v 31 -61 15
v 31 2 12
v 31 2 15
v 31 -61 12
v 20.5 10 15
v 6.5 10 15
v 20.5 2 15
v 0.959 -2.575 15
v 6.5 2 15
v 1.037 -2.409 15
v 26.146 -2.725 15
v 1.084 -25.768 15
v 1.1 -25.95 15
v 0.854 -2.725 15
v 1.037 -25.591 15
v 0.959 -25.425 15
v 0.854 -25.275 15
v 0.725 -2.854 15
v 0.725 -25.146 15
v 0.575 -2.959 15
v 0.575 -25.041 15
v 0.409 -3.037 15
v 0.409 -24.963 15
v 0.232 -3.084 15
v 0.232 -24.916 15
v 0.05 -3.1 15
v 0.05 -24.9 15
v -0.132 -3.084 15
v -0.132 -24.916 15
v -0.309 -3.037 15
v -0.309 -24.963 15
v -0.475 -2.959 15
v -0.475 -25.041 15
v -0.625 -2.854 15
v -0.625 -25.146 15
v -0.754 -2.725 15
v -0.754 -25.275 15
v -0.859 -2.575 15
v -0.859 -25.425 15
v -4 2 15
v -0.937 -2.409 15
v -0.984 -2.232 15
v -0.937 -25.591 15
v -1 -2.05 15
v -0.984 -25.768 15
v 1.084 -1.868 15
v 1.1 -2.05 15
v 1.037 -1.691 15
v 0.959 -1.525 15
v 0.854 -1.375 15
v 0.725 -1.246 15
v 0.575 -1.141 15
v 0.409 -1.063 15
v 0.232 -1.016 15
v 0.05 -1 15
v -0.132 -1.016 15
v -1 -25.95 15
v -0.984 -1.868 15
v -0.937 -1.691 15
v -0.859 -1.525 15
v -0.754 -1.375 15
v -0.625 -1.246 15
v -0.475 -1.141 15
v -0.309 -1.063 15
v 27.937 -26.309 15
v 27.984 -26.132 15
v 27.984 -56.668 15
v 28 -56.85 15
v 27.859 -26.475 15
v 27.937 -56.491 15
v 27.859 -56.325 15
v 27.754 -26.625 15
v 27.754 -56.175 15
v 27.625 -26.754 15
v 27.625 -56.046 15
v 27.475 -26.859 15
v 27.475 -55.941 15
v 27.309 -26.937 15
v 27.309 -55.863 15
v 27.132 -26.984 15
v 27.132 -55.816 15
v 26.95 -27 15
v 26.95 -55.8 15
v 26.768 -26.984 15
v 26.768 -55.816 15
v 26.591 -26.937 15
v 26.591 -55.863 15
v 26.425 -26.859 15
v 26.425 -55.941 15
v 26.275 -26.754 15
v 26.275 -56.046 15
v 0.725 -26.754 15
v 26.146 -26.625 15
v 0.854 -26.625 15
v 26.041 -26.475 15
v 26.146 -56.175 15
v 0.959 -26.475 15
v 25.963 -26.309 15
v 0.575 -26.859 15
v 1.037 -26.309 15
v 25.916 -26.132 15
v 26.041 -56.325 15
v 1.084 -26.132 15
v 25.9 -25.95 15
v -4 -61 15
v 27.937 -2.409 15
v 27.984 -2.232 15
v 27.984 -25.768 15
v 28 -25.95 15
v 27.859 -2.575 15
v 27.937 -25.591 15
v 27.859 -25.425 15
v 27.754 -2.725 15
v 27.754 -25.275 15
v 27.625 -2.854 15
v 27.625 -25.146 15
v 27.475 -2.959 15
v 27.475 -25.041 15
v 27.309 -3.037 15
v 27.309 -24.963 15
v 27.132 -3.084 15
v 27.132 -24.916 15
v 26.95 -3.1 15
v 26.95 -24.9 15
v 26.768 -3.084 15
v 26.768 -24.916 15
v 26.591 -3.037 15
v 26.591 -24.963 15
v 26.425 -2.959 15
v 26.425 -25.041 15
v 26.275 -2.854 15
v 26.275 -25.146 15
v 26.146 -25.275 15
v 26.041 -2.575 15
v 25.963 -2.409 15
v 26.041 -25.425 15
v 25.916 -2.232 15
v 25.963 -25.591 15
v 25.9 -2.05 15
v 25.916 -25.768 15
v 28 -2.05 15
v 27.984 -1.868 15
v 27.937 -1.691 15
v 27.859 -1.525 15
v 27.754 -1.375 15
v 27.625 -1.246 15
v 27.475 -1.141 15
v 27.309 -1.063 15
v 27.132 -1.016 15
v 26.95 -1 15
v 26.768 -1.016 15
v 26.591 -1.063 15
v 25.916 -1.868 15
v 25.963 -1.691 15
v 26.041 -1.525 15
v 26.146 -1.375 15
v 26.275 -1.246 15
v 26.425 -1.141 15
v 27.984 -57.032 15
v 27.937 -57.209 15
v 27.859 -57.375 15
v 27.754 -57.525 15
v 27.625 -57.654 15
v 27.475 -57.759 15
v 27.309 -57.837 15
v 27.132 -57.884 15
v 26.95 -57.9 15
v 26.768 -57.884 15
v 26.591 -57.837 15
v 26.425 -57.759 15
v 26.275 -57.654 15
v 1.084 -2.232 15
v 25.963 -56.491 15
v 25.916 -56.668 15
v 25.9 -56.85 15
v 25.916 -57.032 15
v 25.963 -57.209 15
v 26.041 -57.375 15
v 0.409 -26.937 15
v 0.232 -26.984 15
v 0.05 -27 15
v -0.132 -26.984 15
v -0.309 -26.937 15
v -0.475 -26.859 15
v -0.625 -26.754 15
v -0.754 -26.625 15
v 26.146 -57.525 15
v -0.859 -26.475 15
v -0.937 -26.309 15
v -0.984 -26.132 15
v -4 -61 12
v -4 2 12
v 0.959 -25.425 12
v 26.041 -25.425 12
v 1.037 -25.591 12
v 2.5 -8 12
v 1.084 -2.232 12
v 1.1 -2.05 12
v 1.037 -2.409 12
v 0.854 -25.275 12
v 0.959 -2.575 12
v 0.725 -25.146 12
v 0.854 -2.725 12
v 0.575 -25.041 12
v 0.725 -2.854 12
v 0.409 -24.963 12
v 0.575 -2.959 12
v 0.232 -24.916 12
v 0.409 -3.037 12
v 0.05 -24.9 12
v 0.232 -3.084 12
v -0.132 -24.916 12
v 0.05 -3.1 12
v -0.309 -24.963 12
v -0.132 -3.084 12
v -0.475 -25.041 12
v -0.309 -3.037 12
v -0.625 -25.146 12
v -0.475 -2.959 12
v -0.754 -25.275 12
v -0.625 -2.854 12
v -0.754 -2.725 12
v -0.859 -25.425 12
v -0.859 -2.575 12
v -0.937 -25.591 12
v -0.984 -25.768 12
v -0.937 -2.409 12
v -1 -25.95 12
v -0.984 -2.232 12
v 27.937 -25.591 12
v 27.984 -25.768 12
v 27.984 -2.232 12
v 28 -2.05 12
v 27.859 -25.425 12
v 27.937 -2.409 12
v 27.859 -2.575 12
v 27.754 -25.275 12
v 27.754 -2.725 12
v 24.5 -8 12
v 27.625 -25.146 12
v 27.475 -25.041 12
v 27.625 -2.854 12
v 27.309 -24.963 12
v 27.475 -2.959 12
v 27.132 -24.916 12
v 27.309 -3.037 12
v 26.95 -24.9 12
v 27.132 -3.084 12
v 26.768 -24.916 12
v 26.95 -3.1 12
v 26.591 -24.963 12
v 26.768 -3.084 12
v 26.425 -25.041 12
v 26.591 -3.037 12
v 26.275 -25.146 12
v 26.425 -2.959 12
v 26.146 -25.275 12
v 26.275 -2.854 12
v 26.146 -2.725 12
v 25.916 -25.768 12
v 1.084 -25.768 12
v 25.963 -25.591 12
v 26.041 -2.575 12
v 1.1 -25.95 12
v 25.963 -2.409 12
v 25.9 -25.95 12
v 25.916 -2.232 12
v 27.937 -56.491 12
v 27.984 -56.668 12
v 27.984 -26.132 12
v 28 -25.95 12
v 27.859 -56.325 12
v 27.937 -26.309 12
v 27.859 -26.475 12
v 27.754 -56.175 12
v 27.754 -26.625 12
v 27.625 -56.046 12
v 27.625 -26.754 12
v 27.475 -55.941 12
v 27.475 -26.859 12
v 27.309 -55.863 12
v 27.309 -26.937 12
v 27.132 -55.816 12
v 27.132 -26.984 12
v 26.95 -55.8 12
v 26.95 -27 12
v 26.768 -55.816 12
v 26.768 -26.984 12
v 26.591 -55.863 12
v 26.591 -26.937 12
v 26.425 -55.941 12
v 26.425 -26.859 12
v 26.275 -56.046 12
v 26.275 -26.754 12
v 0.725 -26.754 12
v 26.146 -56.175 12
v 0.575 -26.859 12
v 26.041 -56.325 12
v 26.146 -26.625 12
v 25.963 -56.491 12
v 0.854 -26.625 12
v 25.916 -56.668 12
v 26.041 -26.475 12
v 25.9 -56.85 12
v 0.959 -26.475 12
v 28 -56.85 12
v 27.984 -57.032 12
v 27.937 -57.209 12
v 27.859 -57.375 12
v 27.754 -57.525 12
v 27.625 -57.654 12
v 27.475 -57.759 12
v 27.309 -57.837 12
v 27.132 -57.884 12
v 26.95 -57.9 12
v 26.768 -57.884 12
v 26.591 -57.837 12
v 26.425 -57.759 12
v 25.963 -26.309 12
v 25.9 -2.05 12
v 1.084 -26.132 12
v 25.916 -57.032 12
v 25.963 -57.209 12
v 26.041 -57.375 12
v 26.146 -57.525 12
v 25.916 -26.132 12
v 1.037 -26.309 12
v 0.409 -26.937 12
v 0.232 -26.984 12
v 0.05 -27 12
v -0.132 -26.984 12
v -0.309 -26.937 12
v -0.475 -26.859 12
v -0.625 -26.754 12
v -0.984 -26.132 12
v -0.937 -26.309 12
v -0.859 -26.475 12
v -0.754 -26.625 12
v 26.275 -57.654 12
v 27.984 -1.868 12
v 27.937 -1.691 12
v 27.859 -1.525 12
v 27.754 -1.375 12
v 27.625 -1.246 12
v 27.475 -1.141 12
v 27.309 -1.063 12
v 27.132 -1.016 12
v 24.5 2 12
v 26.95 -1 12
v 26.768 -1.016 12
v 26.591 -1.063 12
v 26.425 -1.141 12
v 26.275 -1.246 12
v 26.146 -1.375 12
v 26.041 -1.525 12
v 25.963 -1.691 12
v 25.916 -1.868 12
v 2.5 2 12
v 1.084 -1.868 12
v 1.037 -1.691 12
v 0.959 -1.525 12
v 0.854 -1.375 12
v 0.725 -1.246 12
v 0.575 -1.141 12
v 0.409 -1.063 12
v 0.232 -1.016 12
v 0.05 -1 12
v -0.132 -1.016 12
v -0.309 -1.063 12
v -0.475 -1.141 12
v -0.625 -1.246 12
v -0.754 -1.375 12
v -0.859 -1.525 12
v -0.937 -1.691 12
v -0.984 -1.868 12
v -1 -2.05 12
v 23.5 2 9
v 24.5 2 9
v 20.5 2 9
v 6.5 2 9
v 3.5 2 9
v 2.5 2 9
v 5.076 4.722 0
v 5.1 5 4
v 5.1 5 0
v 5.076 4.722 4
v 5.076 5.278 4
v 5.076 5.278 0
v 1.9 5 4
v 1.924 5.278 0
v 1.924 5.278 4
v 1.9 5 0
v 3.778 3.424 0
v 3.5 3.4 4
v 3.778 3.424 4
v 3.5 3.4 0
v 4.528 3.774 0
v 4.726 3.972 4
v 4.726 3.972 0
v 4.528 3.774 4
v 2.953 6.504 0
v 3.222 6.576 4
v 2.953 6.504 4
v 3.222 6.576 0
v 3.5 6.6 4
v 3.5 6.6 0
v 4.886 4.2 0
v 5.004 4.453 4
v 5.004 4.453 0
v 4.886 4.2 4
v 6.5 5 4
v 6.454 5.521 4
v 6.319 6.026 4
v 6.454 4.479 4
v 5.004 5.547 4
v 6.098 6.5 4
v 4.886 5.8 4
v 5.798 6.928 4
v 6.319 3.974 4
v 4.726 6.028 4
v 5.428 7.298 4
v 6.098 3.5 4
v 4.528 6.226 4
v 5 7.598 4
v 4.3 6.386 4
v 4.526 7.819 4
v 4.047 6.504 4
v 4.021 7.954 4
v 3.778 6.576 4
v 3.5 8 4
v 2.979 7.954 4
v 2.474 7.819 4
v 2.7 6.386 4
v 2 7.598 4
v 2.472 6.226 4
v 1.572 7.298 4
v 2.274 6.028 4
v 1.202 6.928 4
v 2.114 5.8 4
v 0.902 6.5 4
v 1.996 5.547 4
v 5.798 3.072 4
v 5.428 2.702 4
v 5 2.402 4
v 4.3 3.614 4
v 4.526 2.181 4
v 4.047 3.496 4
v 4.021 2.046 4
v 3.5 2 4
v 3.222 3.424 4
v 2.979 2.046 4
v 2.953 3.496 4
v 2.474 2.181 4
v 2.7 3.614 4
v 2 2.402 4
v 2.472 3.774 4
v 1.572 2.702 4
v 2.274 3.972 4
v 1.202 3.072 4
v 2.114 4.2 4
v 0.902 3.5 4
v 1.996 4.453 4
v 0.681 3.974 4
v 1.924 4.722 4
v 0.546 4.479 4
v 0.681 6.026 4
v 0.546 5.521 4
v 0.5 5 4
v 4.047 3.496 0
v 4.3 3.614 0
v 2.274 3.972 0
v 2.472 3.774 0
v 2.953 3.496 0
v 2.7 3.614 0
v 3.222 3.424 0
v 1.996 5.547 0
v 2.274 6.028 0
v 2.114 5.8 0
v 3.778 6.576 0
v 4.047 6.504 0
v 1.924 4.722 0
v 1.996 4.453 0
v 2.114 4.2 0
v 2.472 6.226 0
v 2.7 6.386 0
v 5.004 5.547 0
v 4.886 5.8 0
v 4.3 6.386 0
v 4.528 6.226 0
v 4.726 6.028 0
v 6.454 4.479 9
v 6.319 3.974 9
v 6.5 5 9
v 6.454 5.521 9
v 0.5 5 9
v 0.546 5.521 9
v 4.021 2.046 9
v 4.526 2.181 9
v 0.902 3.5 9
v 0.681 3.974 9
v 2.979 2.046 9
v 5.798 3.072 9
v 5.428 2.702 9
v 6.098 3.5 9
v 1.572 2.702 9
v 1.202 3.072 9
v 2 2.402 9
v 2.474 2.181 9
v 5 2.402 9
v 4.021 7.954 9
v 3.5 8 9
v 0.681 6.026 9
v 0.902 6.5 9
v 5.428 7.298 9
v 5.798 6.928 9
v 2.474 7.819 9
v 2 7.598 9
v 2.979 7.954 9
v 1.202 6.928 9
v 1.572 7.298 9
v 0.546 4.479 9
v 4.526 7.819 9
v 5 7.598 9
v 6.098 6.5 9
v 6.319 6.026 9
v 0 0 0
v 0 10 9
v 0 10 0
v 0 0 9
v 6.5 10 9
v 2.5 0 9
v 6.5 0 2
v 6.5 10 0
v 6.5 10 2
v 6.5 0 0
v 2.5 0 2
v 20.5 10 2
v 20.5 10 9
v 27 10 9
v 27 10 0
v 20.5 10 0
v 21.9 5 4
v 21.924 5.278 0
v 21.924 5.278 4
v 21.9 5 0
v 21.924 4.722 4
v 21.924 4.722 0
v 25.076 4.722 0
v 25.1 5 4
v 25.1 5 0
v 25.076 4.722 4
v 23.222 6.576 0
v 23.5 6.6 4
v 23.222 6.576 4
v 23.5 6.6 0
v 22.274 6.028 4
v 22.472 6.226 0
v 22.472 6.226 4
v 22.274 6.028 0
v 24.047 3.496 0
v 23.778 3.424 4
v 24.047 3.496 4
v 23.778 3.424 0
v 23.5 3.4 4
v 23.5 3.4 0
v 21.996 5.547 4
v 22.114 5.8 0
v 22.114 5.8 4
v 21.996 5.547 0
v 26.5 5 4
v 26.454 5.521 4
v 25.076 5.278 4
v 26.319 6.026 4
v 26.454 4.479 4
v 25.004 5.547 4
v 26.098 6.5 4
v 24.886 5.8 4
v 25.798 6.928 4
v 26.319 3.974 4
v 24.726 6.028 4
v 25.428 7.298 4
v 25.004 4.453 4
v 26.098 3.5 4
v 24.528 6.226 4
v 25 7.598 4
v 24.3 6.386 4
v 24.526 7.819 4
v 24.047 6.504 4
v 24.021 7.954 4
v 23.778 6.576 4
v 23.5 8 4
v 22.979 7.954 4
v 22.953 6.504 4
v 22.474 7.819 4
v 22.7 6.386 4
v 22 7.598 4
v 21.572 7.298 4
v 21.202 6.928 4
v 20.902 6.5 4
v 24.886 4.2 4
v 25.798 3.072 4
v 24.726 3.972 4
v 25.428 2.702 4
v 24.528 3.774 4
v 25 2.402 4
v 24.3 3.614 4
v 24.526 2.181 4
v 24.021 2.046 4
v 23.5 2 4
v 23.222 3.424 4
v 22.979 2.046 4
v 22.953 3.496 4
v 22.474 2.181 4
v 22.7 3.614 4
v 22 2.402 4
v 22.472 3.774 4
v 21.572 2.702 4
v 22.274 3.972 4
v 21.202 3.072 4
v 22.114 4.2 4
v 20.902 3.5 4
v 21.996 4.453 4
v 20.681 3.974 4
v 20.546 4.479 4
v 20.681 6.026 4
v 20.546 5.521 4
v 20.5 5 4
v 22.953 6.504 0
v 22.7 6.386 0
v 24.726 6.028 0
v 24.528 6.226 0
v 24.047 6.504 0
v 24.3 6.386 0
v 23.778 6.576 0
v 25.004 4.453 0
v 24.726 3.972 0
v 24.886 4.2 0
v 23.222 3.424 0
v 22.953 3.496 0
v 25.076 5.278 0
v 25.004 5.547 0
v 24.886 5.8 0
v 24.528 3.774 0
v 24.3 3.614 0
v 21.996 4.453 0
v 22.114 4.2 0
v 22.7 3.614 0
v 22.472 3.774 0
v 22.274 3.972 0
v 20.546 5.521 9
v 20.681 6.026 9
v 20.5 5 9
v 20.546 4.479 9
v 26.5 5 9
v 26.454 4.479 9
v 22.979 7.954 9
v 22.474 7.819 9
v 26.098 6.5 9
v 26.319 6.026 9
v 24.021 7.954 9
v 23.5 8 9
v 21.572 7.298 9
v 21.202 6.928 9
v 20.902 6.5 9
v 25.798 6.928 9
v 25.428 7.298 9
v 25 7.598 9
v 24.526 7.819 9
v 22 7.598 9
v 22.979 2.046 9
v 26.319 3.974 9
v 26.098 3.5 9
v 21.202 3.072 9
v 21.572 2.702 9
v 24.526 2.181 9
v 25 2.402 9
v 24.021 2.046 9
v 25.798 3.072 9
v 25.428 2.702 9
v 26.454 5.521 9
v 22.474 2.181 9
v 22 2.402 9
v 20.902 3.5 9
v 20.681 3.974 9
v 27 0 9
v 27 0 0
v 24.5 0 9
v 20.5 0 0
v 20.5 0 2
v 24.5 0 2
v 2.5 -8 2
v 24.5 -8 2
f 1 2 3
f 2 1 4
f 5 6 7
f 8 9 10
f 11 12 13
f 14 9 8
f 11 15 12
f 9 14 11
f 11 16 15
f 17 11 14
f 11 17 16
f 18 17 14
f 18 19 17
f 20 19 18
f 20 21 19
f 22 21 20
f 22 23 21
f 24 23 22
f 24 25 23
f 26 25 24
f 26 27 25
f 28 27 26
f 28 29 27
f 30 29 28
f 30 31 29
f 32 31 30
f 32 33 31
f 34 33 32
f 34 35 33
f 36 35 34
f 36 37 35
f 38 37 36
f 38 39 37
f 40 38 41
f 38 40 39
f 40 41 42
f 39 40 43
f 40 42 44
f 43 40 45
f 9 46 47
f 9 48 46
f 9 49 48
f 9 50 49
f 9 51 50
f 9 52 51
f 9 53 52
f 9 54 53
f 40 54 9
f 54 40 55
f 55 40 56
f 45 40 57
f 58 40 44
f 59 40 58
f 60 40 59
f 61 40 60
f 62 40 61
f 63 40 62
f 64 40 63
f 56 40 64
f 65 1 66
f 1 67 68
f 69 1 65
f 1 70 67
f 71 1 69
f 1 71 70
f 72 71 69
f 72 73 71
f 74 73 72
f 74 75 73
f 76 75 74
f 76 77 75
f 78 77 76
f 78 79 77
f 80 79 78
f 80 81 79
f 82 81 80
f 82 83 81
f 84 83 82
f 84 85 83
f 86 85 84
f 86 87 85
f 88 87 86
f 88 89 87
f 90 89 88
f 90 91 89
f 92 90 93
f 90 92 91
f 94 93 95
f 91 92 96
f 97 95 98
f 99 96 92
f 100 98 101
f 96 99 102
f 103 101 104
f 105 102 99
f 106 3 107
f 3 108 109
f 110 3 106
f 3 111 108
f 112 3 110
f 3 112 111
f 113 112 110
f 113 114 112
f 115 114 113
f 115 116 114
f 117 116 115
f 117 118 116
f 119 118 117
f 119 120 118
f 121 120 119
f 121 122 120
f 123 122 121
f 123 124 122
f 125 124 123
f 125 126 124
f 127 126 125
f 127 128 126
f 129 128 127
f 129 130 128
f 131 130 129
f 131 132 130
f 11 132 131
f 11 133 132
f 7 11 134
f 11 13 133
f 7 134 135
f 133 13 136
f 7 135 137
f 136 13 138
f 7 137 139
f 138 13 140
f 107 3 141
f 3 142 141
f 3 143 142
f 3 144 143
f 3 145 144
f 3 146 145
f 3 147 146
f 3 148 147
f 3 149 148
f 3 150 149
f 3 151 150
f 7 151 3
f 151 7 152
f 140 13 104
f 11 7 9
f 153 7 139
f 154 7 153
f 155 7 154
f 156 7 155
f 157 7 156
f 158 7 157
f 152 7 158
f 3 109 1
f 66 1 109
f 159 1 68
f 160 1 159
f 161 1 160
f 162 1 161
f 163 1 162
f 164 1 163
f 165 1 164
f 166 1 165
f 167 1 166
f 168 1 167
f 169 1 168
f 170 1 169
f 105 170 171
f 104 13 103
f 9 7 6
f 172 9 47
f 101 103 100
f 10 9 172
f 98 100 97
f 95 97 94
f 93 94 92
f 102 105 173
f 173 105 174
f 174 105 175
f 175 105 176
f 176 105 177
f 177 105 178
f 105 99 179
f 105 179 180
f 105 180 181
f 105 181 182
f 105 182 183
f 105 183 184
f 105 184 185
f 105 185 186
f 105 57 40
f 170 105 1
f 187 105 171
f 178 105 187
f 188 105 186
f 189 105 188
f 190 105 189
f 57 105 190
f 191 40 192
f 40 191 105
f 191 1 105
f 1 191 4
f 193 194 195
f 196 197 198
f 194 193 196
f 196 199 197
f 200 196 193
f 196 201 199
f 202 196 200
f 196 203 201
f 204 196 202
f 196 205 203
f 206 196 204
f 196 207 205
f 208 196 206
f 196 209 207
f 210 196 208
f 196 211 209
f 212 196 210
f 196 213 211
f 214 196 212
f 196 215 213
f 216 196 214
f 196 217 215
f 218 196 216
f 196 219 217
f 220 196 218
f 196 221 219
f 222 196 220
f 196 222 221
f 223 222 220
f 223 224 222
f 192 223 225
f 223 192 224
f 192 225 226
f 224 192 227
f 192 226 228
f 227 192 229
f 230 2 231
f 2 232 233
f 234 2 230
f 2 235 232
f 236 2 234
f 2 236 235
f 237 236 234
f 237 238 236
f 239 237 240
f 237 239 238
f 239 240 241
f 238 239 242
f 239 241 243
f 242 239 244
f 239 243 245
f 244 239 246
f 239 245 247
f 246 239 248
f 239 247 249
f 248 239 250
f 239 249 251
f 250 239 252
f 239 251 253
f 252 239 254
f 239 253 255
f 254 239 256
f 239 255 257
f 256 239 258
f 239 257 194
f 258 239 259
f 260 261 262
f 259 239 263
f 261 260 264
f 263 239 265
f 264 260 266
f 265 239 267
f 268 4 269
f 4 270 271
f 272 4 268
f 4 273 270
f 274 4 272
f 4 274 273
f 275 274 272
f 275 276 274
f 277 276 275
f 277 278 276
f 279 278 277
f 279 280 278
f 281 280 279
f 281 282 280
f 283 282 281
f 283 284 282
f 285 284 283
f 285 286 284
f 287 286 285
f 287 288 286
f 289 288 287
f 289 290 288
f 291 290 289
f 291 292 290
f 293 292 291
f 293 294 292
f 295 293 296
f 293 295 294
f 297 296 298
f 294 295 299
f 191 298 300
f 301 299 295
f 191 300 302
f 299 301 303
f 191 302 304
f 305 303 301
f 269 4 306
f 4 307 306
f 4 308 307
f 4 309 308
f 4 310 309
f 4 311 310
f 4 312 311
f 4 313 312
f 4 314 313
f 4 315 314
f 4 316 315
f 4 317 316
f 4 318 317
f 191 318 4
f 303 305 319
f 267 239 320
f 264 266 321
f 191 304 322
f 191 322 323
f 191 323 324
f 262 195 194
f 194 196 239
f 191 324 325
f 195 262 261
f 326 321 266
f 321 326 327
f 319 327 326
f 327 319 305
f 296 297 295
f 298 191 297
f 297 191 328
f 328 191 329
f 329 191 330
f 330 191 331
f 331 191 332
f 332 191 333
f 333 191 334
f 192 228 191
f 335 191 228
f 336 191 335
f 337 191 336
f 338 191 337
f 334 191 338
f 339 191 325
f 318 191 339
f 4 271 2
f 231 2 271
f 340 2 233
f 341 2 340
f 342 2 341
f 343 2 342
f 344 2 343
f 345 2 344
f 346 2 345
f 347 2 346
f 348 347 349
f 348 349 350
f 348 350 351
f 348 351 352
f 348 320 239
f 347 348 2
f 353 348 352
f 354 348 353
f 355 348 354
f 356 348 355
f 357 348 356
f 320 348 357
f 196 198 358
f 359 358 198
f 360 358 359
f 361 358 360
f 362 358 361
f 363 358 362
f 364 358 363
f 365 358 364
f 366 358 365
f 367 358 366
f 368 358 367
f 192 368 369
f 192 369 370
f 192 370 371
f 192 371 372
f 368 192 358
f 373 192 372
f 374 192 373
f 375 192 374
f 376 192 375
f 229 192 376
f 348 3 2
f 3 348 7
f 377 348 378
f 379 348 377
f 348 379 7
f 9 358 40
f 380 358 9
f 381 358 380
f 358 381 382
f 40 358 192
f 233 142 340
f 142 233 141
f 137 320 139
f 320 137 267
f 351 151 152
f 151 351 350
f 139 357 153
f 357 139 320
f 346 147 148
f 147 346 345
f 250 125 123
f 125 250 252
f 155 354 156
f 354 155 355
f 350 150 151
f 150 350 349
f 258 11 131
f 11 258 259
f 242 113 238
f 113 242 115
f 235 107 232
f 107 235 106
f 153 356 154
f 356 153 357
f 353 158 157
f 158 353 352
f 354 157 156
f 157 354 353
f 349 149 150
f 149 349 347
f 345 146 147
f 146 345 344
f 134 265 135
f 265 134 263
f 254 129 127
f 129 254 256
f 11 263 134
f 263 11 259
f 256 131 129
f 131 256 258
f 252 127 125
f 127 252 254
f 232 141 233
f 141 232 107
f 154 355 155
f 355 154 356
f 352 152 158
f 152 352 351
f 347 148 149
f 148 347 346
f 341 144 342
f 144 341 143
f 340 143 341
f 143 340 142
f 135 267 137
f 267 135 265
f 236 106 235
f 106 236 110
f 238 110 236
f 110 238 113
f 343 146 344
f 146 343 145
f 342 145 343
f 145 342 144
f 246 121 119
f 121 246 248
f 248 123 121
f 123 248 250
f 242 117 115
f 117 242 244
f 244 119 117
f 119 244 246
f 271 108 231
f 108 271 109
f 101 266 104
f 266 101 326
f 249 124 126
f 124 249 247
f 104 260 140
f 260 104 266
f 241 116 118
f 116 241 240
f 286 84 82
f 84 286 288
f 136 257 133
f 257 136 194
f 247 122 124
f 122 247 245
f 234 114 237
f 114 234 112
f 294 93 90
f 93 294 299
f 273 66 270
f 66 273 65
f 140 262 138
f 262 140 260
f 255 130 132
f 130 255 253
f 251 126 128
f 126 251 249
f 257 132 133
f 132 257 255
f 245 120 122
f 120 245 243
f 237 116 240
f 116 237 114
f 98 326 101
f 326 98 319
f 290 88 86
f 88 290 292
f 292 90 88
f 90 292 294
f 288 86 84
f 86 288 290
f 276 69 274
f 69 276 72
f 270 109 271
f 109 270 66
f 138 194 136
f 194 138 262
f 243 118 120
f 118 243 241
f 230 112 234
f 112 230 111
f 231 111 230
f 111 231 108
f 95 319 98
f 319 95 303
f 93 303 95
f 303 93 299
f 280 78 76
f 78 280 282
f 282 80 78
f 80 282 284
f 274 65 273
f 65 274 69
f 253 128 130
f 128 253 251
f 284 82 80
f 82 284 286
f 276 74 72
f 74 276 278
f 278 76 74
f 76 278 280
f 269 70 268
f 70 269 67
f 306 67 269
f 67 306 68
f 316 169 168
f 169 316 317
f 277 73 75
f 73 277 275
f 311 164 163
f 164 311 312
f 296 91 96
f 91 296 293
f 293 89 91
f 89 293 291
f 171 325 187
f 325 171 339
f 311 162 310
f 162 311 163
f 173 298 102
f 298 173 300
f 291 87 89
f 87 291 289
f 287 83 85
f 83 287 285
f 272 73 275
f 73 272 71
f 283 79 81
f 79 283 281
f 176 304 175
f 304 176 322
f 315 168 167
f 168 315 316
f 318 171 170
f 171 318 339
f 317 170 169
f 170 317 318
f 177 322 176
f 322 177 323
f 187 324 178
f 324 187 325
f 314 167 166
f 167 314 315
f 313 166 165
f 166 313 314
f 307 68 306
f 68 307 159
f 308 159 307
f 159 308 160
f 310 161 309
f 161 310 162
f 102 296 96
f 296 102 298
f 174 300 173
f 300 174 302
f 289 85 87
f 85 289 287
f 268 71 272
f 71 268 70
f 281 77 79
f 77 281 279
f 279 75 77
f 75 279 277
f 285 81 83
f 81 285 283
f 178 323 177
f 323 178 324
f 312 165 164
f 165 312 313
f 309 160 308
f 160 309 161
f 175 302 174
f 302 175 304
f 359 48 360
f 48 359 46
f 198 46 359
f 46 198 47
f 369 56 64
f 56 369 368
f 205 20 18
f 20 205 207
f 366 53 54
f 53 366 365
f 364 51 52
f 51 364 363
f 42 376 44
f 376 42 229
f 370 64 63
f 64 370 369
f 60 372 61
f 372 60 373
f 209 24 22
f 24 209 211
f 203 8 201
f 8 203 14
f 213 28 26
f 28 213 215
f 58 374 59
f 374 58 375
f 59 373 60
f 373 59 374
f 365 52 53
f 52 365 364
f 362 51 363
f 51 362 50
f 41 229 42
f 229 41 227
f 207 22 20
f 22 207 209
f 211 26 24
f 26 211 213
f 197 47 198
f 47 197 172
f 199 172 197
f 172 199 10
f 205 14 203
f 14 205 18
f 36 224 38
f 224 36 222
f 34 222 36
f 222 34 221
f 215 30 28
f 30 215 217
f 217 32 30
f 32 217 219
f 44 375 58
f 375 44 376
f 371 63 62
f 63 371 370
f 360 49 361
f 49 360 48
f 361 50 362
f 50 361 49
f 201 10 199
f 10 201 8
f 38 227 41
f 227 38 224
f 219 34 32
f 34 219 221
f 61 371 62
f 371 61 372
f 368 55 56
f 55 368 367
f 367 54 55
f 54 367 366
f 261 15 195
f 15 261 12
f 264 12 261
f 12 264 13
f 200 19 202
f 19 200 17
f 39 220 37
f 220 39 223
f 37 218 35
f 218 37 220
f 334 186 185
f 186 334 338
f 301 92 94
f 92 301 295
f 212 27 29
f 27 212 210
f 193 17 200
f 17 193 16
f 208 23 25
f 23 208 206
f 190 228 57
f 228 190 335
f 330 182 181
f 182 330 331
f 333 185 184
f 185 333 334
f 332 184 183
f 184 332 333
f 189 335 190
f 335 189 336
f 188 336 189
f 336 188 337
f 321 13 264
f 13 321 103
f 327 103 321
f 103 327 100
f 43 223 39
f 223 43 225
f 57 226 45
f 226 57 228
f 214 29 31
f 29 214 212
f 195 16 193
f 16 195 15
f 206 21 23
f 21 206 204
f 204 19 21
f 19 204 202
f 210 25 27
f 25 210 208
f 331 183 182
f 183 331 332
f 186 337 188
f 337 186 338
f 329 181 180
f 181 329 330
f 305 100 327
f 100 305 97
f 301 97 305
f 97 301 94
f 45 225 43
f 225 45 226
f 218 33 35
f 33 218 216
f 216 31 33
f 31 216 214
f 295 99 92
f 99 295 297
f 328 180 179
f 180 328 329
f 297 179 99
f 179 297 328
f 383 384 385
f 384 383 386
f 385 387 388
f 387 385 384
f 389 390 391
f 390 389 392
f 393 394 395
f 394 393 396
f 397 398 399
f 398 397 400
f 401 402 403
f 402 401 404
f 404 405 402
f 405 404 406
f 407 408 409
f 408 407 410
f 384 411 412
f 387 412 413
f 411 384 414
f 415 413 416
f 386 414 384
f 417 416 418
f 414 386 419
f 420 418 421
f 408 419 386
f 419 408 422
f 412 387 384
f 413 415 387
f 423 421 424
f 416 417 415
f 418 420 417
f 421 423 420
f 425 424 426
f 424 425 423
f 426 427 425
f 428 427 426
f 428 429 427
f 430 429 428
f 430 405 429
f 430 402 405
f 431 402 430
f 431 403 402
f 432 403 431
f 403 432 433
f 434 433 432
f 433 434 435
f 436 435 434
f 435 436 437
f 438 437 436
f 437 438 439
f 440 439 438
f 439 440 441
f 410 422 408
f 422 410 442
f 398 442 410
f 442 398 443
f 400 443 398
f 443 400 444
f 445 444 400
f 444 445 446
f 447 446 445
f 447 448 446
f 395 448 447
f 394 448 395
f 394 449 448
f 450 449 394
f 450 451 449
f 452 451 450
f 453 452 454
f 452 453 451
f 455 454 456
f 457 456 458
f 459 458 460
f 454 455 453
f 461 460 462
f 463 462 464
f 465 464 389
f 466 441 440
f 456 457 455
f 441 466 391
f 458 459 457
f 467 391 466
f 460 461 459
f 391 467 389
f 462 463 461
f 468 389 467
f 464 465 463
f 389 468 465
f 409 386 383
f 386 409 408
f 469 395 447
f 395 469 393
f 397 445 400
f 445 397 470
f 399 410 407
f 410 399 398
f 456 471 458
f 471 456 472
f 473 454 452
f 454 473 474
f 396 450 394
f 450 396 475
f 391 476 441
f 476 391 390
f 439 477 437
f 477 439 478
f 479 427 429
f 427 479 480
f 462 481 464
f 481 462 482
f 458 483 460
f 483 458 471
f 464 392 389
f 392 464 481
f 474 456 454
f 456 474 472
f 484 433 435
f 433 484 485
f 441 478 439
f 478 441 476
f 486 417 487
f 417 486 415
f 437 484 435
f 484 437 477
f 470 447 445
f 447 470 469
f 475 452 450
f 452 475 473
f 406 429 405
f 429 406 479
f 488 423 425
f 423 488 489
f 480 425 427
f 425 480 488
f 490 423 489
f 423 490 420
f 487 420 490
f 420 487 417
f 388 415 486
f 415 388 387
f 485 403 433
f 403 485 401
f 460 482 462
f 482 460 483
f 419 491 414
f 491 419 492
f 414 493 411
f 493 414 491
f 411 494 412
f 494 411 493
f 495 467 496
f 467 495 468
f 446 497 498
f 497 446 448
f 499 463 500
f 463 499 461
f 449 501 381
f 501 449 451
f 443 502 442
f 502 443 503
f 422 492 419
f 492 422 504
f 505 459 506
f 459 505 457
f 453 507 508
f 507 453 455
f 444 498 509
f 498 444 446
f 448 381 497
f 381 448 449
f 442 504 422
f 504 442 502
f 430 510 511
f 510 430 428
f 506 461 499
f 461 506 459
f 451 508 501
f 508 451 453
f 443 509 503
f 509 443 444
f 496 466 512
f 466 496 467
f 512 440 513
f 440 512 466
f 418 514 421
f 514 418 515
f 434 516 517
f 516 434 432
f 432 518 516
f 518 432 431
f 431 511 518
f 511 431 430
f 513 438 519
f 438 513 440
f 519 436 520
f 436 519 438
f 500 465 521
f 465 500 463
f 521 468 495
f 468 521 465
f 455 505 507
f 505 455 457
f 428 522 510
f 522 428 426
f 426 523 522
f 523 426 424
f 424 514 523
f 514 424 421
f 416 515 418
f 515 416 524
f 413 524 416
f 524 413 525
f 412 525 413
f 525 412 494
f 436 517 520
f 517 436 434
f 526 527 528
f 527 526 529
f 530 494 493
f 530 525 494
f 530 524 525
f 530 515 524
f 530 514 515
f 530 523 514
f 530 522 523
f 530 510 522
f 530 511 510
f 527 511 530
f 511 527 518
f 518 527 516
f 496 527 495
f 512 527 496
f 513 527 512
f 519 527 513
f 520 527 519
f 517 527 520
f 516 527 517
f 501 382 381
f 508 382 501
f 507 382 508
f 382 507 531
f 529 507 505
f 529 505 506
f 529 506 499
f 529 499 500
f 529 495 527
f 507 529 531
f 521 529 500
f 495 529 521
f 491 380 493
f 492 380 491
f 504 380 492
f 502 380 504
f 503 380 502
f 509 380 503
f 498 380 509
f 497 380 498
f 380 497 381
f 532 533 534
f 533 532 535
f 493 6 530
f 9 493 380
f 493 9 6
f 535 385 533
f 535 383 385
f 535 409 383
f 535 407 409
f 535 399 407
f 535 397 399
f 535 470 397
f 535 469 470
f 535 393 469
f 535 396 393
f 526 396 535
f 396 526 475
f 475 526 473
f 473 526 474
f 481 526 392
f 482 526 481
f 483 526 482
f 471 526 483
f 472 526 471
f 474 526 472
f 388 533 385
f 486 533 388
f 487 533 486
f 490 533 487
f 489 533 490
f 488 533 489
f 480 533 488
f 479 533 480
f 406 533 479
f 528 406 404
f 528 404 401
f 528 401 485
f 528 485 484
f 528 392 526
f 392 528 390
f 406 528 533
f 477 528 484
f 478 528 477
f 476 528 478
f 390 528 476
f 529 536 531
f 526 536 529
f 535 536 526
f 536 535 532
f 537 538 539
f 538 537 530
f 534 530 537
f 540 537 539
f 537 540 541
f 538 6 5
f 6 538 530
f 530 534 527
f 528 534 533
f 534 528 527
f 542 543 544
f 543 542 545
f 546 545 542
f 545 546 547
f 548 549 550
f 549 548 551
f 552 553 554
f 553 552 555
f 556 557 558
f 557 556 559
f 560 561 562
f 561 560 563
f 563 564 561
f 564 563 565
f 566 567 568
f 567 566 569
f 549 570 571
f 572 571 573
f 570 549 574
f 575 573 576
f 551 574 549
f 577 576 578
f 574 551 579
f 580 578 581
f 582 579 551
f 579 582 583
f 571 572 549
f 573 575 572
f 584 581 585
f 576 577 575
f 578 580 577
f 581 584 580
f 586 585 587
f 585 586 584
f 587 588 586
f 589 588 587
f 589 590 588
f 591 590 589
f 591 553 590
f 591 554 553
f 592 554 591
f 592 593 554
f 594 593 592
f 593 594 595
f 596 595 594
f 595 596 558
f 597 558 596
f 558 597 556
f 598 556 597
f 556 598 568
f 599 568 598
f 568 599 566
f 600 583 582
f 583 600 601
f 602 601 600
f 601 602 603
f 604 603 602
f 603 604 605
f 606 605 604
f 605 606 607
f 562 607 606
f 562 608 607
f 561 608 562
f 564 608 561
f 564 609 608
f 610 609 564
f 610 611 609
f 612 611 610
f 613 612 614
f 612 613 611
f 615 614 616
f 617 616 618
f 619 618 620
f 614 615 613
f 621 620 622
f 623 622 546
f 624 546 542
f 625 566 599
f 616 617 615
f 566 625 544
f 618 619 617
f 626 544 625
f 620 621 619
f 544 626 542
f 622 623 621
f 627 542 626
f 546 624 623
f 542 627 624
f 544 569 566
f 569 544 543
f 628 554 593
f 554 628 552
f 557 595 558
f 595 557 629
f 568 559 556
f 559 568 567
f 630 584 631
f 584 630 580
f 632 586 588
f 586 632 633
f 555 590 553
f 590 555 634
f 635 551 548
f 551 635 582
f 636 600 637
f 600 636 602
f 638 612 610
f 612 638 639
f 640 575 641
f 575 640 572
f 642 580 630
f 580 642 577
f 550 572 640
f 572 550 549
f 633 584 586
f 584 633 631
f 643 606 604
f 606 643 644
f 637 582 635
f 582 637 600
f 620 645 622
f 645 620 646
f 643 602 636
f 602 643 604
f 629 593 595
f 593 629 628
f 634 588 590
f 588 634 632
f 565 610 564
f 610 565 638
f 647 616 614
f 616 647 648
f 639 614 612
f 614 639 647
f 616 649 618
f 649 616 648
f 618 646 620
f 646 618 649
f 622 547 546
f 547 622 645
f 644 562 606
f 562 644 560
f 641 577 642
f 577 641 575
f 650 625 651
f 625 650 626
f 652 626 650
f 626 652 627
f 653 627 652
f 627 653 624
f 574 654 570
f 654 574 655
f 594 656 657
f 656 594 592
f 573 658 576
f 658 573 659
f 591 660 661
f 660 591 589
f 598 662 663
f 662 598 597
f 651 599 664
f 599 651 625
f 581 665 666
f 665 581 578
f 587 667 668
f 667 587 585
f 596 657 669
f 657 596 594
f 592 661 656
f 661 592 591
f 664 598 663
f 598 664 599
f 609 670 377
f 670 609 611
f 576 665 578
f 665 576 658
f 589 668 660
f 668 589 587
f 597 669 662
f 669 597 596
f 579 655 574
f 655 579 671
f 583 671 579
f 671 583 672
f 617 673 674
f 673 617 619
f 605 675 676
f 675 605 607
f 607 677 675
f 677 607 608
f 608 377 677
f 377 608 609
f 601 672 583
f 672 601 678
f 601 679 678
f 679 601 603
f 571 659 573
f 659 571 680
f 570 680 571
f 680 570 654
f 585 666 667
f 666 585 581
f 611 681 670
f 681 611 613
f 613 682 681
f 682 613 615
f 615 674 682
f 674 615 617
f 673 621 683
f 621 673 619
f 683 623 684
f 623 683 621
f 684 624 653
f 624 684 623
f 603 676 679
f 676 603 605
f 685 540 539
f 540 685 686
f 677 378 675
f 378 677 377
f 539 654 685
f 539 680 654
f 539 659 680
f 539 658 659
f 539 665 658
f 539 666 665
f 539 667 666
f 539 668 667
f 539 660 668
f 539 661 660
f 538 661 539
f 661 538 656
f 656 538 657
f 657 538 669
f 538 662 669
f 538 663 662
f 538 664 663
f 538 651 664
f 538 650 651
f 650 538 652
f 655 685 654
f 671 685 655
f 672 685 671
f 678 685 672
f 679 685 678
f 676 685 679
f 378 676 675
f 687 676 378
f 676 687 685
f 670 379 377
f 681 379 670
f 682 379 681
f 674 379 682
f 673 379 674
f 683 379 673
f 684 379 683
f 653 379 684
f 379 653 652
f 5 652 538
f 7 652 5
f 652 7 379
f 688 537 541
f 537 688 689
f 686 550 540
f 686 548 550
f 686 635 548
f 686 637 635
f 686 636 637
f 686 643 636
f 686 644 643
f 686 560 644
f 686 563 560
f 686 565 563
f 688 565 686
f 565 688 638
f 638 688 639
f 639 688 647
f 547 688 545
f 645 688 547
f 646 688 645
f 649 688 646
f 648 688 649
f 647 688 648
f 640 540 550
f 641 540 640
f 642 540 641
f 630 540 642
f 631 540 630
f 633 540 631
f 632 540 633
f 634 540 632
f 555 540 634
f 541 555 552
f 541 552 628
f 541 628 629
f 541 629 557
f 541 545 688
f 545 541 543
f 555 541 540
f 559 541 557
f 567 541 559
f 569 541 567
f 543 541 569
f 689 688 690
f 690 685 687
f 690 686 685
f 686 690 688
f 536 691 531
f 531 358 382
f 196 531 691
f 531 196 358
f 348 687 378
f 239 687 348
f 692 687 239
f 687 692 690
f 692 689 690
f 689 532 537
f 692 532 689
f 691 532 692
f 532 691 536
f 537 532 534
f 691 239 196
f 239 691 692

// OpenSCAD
//top_hole_center = 45 - 15 - 3/2;
//ard_base_z_offset = 10;

thickness = 3;  // how thick is controller bed

module controller_bed(position=[0,0,0]){
    screw_thick = 2.1;
    
    dx = 0;
    
    frame = 2;  // arround the pcb
    w = 59;     // width of pcb measured
    l = 31;     // length of pcb measure
    width = w+2*frame;
    length = l+2*frame;
    cube_inside = [ length, width, thickness];
    
    color("yellow")
    translate(position)
    difference(){
        cube(cube_inside);
        {
            
        // looking at pcb from top with arduino cable on upper right and leds on lower left
            
        // bottom holes are all 1mm from boarder
        hole_dist_bottom = 1;
        
        // lower right corner of pcb
        dx = frame;
        dy = frame;
            
        // bottom right hole is 1mm from each border
        x1 = dx+1+screw_thick/2;
        y1 = dy+1+screw_thick/2;
        screw_hole( x = x1, y = y1, z = 0, d = screw_thick, angle = 0);

        // bottom middle hole is 1mm from bottom and the outer edges of the screwholes are 26mm appart
        x2 = x1;
        // use measured distance, however the edges are each 1/2 of the screwthickness too far
        // hence deduct 1/2 for each
        y2 = y1+26-screw_thick; 
        screw_hole( x = x2, y = y2, z = 0, d = screw_thick, angle = 0);
        
        // bottom left hole is 1mm from bottom and the outer edges of the screwholes are 33mm appart
        x3 = x1;
        // use measured distance, however the edges are each 1/2 of the screwthickness too far
        // hence deduct 1/2 for each
        y3 = y2+33-screw_thick;
        screw_hole( x = x3, y = y3, z = 0, d = screw_thick, angle = 0);

        // upper right hole is 1mm from each border
        x4 = dx+l-1-screw_thick/2;
        y4 = dy+1+screw_thick/2;
        screw_hole( x = x4, y = y4, z = 0, d = screw_thick, angle = 0);

        // bottom middle hole is 1mm from top and the outer edges of the screwholes are 26mm appart
        x5 = x4;
        y5 = y4 + 26 - screw_thick;
        screw_hole( x = x5, y = y5, z = 0, d = screw_thick, angle = 0);
        } // holes
    }//difference
}

module screw_hole( x, y, z, d, angle = 90){
    position = [ x, y, z ];
    turn_angle = 180+angle; // extrude only takes positive height values
    translate( position )
    rotate (a=[ 0, turn_angle, 0 ])
    linear_extrude ( height = 100, center = true)
    circle($fn=36, d=d);
}

module myM3screw(position = [0,0,0]){
    screw_d = 3.2;
    top_d = 6;

    screw_h = 20;
    top_h = 35;
    
    z=-screw_h;
    pos_screw = [0,0,z];
    pos_top = [0,0,z+screw_h];    
    
    color("black")
    translate(position)
    union(){
    translate(pos_screw)
    linear_extrude ( height = screw_h, center = false)
    circle($fn=36, d=screw_d);
    
    translate(pos_top)
    linear_extrude ( height = top_h, center = false)
    circle($fn=36, d=top_d);
    }
}
//myM3screw([3,3,30]);

    
// size of shoe
shoe_width = 6.5;
shoe_length = 10;
shoe_height = 4+5; // groove = 5mm, base is 4mm
bridge_height = 25-10; // how high is the controller positioned

module one_shoe(position=[0,0,0]){


    cube_size = [shoe_width, shoe_length, shoe_height];
  
    // position of screwhole - left is 2mm, then hol
    x = 2 + 3/2;//width/2;
    y = shoe_length/2;    
    // how thick is area where screw holds down the shoe
    offset_screw_head = 4;
    
    translate(position)
    difference(){
        color("yellow",0.35)
        cube(cube_size);
        myM3screw([x,y,offset_screw_head]);
    }
}

module bridge(w,d,h, position=[0,0,0]){
    cube_size = [w,d,h];
    color("green")
    translate(position)
    cube(cube_size);
}

module solids(){
    
    groove_height = 2;  // height of the groove between the screws
    x_distance = 14;   // distance between the shoes, facing inner edges
    bridge_shoe_overlap = 2;        // how much does the bridge reach into the shoes
    bridge_thickness = 10;
    union() {
        x_bed = -(31/2 + 2) - shoe_length - 3.5;
        y_bed = -bridge_shoe_overlap/2-1;
        z_pos = bridge_height-thickness;
        rotate([0,0,180])
        controller_bed(position=[x_bed,y_bed,z_pos]);
        pos1=[0,0,0];
        one_shoe(pos1);
        // rotate because the screw hole is not centered, then move stuff over as per size
        // after first print the distance between the shoes was to short by ~6-7mm
        // when I added an additional shoe_width to the distance it worked, not sure why
        pos2=[-2*shoe_width-x_distance,-shoe_length,0];
        rotate([0,0,180]) one_shoe(pos2);

        top_height = 13;    // 13 is max or the  thin bridge starts moving down
        // this is the bulk part connected to the pillars
        // as above : added one more shoe_width the width
        main_x = x_distance+2*shoe_width;
        main_y = bridge_thickness;
        main_z = bridge_height - groove_height - top_height;
        main_bridge_pos = [0,-bridge_thickness+bridge_shoe_overlap,groove_height];
        bridge(main_x,main_y,main_z,main_bridge_pos);
        
        // this is the thinner part, a little thinner so that screws holes for the controller fit
        thinner = 5;
        thin_x = x_distance+2*shoe_width - thinner;
        thin_y = bridge_thickness;
        thin_z = top_height;
        thin_bridge_pos = [thinner/2,-bridge_thickness+bridge_shoe_overlap,groove_height+main_z];
        bridge(thin_x, thin_y, thin_z, thin_bridge_pos);
        
         // this is the connection between the shoes
        conn_x = x_distance;
        conn_y = bridge_thickness;
        conn_z = bridge_height - groove_height;
        conn_bridge_pos = [shoe_width,0,groove_height];
        bridge(conn_x, conn_y, conn_z, conn_bridge_pos);
        
    }
}

solids();
